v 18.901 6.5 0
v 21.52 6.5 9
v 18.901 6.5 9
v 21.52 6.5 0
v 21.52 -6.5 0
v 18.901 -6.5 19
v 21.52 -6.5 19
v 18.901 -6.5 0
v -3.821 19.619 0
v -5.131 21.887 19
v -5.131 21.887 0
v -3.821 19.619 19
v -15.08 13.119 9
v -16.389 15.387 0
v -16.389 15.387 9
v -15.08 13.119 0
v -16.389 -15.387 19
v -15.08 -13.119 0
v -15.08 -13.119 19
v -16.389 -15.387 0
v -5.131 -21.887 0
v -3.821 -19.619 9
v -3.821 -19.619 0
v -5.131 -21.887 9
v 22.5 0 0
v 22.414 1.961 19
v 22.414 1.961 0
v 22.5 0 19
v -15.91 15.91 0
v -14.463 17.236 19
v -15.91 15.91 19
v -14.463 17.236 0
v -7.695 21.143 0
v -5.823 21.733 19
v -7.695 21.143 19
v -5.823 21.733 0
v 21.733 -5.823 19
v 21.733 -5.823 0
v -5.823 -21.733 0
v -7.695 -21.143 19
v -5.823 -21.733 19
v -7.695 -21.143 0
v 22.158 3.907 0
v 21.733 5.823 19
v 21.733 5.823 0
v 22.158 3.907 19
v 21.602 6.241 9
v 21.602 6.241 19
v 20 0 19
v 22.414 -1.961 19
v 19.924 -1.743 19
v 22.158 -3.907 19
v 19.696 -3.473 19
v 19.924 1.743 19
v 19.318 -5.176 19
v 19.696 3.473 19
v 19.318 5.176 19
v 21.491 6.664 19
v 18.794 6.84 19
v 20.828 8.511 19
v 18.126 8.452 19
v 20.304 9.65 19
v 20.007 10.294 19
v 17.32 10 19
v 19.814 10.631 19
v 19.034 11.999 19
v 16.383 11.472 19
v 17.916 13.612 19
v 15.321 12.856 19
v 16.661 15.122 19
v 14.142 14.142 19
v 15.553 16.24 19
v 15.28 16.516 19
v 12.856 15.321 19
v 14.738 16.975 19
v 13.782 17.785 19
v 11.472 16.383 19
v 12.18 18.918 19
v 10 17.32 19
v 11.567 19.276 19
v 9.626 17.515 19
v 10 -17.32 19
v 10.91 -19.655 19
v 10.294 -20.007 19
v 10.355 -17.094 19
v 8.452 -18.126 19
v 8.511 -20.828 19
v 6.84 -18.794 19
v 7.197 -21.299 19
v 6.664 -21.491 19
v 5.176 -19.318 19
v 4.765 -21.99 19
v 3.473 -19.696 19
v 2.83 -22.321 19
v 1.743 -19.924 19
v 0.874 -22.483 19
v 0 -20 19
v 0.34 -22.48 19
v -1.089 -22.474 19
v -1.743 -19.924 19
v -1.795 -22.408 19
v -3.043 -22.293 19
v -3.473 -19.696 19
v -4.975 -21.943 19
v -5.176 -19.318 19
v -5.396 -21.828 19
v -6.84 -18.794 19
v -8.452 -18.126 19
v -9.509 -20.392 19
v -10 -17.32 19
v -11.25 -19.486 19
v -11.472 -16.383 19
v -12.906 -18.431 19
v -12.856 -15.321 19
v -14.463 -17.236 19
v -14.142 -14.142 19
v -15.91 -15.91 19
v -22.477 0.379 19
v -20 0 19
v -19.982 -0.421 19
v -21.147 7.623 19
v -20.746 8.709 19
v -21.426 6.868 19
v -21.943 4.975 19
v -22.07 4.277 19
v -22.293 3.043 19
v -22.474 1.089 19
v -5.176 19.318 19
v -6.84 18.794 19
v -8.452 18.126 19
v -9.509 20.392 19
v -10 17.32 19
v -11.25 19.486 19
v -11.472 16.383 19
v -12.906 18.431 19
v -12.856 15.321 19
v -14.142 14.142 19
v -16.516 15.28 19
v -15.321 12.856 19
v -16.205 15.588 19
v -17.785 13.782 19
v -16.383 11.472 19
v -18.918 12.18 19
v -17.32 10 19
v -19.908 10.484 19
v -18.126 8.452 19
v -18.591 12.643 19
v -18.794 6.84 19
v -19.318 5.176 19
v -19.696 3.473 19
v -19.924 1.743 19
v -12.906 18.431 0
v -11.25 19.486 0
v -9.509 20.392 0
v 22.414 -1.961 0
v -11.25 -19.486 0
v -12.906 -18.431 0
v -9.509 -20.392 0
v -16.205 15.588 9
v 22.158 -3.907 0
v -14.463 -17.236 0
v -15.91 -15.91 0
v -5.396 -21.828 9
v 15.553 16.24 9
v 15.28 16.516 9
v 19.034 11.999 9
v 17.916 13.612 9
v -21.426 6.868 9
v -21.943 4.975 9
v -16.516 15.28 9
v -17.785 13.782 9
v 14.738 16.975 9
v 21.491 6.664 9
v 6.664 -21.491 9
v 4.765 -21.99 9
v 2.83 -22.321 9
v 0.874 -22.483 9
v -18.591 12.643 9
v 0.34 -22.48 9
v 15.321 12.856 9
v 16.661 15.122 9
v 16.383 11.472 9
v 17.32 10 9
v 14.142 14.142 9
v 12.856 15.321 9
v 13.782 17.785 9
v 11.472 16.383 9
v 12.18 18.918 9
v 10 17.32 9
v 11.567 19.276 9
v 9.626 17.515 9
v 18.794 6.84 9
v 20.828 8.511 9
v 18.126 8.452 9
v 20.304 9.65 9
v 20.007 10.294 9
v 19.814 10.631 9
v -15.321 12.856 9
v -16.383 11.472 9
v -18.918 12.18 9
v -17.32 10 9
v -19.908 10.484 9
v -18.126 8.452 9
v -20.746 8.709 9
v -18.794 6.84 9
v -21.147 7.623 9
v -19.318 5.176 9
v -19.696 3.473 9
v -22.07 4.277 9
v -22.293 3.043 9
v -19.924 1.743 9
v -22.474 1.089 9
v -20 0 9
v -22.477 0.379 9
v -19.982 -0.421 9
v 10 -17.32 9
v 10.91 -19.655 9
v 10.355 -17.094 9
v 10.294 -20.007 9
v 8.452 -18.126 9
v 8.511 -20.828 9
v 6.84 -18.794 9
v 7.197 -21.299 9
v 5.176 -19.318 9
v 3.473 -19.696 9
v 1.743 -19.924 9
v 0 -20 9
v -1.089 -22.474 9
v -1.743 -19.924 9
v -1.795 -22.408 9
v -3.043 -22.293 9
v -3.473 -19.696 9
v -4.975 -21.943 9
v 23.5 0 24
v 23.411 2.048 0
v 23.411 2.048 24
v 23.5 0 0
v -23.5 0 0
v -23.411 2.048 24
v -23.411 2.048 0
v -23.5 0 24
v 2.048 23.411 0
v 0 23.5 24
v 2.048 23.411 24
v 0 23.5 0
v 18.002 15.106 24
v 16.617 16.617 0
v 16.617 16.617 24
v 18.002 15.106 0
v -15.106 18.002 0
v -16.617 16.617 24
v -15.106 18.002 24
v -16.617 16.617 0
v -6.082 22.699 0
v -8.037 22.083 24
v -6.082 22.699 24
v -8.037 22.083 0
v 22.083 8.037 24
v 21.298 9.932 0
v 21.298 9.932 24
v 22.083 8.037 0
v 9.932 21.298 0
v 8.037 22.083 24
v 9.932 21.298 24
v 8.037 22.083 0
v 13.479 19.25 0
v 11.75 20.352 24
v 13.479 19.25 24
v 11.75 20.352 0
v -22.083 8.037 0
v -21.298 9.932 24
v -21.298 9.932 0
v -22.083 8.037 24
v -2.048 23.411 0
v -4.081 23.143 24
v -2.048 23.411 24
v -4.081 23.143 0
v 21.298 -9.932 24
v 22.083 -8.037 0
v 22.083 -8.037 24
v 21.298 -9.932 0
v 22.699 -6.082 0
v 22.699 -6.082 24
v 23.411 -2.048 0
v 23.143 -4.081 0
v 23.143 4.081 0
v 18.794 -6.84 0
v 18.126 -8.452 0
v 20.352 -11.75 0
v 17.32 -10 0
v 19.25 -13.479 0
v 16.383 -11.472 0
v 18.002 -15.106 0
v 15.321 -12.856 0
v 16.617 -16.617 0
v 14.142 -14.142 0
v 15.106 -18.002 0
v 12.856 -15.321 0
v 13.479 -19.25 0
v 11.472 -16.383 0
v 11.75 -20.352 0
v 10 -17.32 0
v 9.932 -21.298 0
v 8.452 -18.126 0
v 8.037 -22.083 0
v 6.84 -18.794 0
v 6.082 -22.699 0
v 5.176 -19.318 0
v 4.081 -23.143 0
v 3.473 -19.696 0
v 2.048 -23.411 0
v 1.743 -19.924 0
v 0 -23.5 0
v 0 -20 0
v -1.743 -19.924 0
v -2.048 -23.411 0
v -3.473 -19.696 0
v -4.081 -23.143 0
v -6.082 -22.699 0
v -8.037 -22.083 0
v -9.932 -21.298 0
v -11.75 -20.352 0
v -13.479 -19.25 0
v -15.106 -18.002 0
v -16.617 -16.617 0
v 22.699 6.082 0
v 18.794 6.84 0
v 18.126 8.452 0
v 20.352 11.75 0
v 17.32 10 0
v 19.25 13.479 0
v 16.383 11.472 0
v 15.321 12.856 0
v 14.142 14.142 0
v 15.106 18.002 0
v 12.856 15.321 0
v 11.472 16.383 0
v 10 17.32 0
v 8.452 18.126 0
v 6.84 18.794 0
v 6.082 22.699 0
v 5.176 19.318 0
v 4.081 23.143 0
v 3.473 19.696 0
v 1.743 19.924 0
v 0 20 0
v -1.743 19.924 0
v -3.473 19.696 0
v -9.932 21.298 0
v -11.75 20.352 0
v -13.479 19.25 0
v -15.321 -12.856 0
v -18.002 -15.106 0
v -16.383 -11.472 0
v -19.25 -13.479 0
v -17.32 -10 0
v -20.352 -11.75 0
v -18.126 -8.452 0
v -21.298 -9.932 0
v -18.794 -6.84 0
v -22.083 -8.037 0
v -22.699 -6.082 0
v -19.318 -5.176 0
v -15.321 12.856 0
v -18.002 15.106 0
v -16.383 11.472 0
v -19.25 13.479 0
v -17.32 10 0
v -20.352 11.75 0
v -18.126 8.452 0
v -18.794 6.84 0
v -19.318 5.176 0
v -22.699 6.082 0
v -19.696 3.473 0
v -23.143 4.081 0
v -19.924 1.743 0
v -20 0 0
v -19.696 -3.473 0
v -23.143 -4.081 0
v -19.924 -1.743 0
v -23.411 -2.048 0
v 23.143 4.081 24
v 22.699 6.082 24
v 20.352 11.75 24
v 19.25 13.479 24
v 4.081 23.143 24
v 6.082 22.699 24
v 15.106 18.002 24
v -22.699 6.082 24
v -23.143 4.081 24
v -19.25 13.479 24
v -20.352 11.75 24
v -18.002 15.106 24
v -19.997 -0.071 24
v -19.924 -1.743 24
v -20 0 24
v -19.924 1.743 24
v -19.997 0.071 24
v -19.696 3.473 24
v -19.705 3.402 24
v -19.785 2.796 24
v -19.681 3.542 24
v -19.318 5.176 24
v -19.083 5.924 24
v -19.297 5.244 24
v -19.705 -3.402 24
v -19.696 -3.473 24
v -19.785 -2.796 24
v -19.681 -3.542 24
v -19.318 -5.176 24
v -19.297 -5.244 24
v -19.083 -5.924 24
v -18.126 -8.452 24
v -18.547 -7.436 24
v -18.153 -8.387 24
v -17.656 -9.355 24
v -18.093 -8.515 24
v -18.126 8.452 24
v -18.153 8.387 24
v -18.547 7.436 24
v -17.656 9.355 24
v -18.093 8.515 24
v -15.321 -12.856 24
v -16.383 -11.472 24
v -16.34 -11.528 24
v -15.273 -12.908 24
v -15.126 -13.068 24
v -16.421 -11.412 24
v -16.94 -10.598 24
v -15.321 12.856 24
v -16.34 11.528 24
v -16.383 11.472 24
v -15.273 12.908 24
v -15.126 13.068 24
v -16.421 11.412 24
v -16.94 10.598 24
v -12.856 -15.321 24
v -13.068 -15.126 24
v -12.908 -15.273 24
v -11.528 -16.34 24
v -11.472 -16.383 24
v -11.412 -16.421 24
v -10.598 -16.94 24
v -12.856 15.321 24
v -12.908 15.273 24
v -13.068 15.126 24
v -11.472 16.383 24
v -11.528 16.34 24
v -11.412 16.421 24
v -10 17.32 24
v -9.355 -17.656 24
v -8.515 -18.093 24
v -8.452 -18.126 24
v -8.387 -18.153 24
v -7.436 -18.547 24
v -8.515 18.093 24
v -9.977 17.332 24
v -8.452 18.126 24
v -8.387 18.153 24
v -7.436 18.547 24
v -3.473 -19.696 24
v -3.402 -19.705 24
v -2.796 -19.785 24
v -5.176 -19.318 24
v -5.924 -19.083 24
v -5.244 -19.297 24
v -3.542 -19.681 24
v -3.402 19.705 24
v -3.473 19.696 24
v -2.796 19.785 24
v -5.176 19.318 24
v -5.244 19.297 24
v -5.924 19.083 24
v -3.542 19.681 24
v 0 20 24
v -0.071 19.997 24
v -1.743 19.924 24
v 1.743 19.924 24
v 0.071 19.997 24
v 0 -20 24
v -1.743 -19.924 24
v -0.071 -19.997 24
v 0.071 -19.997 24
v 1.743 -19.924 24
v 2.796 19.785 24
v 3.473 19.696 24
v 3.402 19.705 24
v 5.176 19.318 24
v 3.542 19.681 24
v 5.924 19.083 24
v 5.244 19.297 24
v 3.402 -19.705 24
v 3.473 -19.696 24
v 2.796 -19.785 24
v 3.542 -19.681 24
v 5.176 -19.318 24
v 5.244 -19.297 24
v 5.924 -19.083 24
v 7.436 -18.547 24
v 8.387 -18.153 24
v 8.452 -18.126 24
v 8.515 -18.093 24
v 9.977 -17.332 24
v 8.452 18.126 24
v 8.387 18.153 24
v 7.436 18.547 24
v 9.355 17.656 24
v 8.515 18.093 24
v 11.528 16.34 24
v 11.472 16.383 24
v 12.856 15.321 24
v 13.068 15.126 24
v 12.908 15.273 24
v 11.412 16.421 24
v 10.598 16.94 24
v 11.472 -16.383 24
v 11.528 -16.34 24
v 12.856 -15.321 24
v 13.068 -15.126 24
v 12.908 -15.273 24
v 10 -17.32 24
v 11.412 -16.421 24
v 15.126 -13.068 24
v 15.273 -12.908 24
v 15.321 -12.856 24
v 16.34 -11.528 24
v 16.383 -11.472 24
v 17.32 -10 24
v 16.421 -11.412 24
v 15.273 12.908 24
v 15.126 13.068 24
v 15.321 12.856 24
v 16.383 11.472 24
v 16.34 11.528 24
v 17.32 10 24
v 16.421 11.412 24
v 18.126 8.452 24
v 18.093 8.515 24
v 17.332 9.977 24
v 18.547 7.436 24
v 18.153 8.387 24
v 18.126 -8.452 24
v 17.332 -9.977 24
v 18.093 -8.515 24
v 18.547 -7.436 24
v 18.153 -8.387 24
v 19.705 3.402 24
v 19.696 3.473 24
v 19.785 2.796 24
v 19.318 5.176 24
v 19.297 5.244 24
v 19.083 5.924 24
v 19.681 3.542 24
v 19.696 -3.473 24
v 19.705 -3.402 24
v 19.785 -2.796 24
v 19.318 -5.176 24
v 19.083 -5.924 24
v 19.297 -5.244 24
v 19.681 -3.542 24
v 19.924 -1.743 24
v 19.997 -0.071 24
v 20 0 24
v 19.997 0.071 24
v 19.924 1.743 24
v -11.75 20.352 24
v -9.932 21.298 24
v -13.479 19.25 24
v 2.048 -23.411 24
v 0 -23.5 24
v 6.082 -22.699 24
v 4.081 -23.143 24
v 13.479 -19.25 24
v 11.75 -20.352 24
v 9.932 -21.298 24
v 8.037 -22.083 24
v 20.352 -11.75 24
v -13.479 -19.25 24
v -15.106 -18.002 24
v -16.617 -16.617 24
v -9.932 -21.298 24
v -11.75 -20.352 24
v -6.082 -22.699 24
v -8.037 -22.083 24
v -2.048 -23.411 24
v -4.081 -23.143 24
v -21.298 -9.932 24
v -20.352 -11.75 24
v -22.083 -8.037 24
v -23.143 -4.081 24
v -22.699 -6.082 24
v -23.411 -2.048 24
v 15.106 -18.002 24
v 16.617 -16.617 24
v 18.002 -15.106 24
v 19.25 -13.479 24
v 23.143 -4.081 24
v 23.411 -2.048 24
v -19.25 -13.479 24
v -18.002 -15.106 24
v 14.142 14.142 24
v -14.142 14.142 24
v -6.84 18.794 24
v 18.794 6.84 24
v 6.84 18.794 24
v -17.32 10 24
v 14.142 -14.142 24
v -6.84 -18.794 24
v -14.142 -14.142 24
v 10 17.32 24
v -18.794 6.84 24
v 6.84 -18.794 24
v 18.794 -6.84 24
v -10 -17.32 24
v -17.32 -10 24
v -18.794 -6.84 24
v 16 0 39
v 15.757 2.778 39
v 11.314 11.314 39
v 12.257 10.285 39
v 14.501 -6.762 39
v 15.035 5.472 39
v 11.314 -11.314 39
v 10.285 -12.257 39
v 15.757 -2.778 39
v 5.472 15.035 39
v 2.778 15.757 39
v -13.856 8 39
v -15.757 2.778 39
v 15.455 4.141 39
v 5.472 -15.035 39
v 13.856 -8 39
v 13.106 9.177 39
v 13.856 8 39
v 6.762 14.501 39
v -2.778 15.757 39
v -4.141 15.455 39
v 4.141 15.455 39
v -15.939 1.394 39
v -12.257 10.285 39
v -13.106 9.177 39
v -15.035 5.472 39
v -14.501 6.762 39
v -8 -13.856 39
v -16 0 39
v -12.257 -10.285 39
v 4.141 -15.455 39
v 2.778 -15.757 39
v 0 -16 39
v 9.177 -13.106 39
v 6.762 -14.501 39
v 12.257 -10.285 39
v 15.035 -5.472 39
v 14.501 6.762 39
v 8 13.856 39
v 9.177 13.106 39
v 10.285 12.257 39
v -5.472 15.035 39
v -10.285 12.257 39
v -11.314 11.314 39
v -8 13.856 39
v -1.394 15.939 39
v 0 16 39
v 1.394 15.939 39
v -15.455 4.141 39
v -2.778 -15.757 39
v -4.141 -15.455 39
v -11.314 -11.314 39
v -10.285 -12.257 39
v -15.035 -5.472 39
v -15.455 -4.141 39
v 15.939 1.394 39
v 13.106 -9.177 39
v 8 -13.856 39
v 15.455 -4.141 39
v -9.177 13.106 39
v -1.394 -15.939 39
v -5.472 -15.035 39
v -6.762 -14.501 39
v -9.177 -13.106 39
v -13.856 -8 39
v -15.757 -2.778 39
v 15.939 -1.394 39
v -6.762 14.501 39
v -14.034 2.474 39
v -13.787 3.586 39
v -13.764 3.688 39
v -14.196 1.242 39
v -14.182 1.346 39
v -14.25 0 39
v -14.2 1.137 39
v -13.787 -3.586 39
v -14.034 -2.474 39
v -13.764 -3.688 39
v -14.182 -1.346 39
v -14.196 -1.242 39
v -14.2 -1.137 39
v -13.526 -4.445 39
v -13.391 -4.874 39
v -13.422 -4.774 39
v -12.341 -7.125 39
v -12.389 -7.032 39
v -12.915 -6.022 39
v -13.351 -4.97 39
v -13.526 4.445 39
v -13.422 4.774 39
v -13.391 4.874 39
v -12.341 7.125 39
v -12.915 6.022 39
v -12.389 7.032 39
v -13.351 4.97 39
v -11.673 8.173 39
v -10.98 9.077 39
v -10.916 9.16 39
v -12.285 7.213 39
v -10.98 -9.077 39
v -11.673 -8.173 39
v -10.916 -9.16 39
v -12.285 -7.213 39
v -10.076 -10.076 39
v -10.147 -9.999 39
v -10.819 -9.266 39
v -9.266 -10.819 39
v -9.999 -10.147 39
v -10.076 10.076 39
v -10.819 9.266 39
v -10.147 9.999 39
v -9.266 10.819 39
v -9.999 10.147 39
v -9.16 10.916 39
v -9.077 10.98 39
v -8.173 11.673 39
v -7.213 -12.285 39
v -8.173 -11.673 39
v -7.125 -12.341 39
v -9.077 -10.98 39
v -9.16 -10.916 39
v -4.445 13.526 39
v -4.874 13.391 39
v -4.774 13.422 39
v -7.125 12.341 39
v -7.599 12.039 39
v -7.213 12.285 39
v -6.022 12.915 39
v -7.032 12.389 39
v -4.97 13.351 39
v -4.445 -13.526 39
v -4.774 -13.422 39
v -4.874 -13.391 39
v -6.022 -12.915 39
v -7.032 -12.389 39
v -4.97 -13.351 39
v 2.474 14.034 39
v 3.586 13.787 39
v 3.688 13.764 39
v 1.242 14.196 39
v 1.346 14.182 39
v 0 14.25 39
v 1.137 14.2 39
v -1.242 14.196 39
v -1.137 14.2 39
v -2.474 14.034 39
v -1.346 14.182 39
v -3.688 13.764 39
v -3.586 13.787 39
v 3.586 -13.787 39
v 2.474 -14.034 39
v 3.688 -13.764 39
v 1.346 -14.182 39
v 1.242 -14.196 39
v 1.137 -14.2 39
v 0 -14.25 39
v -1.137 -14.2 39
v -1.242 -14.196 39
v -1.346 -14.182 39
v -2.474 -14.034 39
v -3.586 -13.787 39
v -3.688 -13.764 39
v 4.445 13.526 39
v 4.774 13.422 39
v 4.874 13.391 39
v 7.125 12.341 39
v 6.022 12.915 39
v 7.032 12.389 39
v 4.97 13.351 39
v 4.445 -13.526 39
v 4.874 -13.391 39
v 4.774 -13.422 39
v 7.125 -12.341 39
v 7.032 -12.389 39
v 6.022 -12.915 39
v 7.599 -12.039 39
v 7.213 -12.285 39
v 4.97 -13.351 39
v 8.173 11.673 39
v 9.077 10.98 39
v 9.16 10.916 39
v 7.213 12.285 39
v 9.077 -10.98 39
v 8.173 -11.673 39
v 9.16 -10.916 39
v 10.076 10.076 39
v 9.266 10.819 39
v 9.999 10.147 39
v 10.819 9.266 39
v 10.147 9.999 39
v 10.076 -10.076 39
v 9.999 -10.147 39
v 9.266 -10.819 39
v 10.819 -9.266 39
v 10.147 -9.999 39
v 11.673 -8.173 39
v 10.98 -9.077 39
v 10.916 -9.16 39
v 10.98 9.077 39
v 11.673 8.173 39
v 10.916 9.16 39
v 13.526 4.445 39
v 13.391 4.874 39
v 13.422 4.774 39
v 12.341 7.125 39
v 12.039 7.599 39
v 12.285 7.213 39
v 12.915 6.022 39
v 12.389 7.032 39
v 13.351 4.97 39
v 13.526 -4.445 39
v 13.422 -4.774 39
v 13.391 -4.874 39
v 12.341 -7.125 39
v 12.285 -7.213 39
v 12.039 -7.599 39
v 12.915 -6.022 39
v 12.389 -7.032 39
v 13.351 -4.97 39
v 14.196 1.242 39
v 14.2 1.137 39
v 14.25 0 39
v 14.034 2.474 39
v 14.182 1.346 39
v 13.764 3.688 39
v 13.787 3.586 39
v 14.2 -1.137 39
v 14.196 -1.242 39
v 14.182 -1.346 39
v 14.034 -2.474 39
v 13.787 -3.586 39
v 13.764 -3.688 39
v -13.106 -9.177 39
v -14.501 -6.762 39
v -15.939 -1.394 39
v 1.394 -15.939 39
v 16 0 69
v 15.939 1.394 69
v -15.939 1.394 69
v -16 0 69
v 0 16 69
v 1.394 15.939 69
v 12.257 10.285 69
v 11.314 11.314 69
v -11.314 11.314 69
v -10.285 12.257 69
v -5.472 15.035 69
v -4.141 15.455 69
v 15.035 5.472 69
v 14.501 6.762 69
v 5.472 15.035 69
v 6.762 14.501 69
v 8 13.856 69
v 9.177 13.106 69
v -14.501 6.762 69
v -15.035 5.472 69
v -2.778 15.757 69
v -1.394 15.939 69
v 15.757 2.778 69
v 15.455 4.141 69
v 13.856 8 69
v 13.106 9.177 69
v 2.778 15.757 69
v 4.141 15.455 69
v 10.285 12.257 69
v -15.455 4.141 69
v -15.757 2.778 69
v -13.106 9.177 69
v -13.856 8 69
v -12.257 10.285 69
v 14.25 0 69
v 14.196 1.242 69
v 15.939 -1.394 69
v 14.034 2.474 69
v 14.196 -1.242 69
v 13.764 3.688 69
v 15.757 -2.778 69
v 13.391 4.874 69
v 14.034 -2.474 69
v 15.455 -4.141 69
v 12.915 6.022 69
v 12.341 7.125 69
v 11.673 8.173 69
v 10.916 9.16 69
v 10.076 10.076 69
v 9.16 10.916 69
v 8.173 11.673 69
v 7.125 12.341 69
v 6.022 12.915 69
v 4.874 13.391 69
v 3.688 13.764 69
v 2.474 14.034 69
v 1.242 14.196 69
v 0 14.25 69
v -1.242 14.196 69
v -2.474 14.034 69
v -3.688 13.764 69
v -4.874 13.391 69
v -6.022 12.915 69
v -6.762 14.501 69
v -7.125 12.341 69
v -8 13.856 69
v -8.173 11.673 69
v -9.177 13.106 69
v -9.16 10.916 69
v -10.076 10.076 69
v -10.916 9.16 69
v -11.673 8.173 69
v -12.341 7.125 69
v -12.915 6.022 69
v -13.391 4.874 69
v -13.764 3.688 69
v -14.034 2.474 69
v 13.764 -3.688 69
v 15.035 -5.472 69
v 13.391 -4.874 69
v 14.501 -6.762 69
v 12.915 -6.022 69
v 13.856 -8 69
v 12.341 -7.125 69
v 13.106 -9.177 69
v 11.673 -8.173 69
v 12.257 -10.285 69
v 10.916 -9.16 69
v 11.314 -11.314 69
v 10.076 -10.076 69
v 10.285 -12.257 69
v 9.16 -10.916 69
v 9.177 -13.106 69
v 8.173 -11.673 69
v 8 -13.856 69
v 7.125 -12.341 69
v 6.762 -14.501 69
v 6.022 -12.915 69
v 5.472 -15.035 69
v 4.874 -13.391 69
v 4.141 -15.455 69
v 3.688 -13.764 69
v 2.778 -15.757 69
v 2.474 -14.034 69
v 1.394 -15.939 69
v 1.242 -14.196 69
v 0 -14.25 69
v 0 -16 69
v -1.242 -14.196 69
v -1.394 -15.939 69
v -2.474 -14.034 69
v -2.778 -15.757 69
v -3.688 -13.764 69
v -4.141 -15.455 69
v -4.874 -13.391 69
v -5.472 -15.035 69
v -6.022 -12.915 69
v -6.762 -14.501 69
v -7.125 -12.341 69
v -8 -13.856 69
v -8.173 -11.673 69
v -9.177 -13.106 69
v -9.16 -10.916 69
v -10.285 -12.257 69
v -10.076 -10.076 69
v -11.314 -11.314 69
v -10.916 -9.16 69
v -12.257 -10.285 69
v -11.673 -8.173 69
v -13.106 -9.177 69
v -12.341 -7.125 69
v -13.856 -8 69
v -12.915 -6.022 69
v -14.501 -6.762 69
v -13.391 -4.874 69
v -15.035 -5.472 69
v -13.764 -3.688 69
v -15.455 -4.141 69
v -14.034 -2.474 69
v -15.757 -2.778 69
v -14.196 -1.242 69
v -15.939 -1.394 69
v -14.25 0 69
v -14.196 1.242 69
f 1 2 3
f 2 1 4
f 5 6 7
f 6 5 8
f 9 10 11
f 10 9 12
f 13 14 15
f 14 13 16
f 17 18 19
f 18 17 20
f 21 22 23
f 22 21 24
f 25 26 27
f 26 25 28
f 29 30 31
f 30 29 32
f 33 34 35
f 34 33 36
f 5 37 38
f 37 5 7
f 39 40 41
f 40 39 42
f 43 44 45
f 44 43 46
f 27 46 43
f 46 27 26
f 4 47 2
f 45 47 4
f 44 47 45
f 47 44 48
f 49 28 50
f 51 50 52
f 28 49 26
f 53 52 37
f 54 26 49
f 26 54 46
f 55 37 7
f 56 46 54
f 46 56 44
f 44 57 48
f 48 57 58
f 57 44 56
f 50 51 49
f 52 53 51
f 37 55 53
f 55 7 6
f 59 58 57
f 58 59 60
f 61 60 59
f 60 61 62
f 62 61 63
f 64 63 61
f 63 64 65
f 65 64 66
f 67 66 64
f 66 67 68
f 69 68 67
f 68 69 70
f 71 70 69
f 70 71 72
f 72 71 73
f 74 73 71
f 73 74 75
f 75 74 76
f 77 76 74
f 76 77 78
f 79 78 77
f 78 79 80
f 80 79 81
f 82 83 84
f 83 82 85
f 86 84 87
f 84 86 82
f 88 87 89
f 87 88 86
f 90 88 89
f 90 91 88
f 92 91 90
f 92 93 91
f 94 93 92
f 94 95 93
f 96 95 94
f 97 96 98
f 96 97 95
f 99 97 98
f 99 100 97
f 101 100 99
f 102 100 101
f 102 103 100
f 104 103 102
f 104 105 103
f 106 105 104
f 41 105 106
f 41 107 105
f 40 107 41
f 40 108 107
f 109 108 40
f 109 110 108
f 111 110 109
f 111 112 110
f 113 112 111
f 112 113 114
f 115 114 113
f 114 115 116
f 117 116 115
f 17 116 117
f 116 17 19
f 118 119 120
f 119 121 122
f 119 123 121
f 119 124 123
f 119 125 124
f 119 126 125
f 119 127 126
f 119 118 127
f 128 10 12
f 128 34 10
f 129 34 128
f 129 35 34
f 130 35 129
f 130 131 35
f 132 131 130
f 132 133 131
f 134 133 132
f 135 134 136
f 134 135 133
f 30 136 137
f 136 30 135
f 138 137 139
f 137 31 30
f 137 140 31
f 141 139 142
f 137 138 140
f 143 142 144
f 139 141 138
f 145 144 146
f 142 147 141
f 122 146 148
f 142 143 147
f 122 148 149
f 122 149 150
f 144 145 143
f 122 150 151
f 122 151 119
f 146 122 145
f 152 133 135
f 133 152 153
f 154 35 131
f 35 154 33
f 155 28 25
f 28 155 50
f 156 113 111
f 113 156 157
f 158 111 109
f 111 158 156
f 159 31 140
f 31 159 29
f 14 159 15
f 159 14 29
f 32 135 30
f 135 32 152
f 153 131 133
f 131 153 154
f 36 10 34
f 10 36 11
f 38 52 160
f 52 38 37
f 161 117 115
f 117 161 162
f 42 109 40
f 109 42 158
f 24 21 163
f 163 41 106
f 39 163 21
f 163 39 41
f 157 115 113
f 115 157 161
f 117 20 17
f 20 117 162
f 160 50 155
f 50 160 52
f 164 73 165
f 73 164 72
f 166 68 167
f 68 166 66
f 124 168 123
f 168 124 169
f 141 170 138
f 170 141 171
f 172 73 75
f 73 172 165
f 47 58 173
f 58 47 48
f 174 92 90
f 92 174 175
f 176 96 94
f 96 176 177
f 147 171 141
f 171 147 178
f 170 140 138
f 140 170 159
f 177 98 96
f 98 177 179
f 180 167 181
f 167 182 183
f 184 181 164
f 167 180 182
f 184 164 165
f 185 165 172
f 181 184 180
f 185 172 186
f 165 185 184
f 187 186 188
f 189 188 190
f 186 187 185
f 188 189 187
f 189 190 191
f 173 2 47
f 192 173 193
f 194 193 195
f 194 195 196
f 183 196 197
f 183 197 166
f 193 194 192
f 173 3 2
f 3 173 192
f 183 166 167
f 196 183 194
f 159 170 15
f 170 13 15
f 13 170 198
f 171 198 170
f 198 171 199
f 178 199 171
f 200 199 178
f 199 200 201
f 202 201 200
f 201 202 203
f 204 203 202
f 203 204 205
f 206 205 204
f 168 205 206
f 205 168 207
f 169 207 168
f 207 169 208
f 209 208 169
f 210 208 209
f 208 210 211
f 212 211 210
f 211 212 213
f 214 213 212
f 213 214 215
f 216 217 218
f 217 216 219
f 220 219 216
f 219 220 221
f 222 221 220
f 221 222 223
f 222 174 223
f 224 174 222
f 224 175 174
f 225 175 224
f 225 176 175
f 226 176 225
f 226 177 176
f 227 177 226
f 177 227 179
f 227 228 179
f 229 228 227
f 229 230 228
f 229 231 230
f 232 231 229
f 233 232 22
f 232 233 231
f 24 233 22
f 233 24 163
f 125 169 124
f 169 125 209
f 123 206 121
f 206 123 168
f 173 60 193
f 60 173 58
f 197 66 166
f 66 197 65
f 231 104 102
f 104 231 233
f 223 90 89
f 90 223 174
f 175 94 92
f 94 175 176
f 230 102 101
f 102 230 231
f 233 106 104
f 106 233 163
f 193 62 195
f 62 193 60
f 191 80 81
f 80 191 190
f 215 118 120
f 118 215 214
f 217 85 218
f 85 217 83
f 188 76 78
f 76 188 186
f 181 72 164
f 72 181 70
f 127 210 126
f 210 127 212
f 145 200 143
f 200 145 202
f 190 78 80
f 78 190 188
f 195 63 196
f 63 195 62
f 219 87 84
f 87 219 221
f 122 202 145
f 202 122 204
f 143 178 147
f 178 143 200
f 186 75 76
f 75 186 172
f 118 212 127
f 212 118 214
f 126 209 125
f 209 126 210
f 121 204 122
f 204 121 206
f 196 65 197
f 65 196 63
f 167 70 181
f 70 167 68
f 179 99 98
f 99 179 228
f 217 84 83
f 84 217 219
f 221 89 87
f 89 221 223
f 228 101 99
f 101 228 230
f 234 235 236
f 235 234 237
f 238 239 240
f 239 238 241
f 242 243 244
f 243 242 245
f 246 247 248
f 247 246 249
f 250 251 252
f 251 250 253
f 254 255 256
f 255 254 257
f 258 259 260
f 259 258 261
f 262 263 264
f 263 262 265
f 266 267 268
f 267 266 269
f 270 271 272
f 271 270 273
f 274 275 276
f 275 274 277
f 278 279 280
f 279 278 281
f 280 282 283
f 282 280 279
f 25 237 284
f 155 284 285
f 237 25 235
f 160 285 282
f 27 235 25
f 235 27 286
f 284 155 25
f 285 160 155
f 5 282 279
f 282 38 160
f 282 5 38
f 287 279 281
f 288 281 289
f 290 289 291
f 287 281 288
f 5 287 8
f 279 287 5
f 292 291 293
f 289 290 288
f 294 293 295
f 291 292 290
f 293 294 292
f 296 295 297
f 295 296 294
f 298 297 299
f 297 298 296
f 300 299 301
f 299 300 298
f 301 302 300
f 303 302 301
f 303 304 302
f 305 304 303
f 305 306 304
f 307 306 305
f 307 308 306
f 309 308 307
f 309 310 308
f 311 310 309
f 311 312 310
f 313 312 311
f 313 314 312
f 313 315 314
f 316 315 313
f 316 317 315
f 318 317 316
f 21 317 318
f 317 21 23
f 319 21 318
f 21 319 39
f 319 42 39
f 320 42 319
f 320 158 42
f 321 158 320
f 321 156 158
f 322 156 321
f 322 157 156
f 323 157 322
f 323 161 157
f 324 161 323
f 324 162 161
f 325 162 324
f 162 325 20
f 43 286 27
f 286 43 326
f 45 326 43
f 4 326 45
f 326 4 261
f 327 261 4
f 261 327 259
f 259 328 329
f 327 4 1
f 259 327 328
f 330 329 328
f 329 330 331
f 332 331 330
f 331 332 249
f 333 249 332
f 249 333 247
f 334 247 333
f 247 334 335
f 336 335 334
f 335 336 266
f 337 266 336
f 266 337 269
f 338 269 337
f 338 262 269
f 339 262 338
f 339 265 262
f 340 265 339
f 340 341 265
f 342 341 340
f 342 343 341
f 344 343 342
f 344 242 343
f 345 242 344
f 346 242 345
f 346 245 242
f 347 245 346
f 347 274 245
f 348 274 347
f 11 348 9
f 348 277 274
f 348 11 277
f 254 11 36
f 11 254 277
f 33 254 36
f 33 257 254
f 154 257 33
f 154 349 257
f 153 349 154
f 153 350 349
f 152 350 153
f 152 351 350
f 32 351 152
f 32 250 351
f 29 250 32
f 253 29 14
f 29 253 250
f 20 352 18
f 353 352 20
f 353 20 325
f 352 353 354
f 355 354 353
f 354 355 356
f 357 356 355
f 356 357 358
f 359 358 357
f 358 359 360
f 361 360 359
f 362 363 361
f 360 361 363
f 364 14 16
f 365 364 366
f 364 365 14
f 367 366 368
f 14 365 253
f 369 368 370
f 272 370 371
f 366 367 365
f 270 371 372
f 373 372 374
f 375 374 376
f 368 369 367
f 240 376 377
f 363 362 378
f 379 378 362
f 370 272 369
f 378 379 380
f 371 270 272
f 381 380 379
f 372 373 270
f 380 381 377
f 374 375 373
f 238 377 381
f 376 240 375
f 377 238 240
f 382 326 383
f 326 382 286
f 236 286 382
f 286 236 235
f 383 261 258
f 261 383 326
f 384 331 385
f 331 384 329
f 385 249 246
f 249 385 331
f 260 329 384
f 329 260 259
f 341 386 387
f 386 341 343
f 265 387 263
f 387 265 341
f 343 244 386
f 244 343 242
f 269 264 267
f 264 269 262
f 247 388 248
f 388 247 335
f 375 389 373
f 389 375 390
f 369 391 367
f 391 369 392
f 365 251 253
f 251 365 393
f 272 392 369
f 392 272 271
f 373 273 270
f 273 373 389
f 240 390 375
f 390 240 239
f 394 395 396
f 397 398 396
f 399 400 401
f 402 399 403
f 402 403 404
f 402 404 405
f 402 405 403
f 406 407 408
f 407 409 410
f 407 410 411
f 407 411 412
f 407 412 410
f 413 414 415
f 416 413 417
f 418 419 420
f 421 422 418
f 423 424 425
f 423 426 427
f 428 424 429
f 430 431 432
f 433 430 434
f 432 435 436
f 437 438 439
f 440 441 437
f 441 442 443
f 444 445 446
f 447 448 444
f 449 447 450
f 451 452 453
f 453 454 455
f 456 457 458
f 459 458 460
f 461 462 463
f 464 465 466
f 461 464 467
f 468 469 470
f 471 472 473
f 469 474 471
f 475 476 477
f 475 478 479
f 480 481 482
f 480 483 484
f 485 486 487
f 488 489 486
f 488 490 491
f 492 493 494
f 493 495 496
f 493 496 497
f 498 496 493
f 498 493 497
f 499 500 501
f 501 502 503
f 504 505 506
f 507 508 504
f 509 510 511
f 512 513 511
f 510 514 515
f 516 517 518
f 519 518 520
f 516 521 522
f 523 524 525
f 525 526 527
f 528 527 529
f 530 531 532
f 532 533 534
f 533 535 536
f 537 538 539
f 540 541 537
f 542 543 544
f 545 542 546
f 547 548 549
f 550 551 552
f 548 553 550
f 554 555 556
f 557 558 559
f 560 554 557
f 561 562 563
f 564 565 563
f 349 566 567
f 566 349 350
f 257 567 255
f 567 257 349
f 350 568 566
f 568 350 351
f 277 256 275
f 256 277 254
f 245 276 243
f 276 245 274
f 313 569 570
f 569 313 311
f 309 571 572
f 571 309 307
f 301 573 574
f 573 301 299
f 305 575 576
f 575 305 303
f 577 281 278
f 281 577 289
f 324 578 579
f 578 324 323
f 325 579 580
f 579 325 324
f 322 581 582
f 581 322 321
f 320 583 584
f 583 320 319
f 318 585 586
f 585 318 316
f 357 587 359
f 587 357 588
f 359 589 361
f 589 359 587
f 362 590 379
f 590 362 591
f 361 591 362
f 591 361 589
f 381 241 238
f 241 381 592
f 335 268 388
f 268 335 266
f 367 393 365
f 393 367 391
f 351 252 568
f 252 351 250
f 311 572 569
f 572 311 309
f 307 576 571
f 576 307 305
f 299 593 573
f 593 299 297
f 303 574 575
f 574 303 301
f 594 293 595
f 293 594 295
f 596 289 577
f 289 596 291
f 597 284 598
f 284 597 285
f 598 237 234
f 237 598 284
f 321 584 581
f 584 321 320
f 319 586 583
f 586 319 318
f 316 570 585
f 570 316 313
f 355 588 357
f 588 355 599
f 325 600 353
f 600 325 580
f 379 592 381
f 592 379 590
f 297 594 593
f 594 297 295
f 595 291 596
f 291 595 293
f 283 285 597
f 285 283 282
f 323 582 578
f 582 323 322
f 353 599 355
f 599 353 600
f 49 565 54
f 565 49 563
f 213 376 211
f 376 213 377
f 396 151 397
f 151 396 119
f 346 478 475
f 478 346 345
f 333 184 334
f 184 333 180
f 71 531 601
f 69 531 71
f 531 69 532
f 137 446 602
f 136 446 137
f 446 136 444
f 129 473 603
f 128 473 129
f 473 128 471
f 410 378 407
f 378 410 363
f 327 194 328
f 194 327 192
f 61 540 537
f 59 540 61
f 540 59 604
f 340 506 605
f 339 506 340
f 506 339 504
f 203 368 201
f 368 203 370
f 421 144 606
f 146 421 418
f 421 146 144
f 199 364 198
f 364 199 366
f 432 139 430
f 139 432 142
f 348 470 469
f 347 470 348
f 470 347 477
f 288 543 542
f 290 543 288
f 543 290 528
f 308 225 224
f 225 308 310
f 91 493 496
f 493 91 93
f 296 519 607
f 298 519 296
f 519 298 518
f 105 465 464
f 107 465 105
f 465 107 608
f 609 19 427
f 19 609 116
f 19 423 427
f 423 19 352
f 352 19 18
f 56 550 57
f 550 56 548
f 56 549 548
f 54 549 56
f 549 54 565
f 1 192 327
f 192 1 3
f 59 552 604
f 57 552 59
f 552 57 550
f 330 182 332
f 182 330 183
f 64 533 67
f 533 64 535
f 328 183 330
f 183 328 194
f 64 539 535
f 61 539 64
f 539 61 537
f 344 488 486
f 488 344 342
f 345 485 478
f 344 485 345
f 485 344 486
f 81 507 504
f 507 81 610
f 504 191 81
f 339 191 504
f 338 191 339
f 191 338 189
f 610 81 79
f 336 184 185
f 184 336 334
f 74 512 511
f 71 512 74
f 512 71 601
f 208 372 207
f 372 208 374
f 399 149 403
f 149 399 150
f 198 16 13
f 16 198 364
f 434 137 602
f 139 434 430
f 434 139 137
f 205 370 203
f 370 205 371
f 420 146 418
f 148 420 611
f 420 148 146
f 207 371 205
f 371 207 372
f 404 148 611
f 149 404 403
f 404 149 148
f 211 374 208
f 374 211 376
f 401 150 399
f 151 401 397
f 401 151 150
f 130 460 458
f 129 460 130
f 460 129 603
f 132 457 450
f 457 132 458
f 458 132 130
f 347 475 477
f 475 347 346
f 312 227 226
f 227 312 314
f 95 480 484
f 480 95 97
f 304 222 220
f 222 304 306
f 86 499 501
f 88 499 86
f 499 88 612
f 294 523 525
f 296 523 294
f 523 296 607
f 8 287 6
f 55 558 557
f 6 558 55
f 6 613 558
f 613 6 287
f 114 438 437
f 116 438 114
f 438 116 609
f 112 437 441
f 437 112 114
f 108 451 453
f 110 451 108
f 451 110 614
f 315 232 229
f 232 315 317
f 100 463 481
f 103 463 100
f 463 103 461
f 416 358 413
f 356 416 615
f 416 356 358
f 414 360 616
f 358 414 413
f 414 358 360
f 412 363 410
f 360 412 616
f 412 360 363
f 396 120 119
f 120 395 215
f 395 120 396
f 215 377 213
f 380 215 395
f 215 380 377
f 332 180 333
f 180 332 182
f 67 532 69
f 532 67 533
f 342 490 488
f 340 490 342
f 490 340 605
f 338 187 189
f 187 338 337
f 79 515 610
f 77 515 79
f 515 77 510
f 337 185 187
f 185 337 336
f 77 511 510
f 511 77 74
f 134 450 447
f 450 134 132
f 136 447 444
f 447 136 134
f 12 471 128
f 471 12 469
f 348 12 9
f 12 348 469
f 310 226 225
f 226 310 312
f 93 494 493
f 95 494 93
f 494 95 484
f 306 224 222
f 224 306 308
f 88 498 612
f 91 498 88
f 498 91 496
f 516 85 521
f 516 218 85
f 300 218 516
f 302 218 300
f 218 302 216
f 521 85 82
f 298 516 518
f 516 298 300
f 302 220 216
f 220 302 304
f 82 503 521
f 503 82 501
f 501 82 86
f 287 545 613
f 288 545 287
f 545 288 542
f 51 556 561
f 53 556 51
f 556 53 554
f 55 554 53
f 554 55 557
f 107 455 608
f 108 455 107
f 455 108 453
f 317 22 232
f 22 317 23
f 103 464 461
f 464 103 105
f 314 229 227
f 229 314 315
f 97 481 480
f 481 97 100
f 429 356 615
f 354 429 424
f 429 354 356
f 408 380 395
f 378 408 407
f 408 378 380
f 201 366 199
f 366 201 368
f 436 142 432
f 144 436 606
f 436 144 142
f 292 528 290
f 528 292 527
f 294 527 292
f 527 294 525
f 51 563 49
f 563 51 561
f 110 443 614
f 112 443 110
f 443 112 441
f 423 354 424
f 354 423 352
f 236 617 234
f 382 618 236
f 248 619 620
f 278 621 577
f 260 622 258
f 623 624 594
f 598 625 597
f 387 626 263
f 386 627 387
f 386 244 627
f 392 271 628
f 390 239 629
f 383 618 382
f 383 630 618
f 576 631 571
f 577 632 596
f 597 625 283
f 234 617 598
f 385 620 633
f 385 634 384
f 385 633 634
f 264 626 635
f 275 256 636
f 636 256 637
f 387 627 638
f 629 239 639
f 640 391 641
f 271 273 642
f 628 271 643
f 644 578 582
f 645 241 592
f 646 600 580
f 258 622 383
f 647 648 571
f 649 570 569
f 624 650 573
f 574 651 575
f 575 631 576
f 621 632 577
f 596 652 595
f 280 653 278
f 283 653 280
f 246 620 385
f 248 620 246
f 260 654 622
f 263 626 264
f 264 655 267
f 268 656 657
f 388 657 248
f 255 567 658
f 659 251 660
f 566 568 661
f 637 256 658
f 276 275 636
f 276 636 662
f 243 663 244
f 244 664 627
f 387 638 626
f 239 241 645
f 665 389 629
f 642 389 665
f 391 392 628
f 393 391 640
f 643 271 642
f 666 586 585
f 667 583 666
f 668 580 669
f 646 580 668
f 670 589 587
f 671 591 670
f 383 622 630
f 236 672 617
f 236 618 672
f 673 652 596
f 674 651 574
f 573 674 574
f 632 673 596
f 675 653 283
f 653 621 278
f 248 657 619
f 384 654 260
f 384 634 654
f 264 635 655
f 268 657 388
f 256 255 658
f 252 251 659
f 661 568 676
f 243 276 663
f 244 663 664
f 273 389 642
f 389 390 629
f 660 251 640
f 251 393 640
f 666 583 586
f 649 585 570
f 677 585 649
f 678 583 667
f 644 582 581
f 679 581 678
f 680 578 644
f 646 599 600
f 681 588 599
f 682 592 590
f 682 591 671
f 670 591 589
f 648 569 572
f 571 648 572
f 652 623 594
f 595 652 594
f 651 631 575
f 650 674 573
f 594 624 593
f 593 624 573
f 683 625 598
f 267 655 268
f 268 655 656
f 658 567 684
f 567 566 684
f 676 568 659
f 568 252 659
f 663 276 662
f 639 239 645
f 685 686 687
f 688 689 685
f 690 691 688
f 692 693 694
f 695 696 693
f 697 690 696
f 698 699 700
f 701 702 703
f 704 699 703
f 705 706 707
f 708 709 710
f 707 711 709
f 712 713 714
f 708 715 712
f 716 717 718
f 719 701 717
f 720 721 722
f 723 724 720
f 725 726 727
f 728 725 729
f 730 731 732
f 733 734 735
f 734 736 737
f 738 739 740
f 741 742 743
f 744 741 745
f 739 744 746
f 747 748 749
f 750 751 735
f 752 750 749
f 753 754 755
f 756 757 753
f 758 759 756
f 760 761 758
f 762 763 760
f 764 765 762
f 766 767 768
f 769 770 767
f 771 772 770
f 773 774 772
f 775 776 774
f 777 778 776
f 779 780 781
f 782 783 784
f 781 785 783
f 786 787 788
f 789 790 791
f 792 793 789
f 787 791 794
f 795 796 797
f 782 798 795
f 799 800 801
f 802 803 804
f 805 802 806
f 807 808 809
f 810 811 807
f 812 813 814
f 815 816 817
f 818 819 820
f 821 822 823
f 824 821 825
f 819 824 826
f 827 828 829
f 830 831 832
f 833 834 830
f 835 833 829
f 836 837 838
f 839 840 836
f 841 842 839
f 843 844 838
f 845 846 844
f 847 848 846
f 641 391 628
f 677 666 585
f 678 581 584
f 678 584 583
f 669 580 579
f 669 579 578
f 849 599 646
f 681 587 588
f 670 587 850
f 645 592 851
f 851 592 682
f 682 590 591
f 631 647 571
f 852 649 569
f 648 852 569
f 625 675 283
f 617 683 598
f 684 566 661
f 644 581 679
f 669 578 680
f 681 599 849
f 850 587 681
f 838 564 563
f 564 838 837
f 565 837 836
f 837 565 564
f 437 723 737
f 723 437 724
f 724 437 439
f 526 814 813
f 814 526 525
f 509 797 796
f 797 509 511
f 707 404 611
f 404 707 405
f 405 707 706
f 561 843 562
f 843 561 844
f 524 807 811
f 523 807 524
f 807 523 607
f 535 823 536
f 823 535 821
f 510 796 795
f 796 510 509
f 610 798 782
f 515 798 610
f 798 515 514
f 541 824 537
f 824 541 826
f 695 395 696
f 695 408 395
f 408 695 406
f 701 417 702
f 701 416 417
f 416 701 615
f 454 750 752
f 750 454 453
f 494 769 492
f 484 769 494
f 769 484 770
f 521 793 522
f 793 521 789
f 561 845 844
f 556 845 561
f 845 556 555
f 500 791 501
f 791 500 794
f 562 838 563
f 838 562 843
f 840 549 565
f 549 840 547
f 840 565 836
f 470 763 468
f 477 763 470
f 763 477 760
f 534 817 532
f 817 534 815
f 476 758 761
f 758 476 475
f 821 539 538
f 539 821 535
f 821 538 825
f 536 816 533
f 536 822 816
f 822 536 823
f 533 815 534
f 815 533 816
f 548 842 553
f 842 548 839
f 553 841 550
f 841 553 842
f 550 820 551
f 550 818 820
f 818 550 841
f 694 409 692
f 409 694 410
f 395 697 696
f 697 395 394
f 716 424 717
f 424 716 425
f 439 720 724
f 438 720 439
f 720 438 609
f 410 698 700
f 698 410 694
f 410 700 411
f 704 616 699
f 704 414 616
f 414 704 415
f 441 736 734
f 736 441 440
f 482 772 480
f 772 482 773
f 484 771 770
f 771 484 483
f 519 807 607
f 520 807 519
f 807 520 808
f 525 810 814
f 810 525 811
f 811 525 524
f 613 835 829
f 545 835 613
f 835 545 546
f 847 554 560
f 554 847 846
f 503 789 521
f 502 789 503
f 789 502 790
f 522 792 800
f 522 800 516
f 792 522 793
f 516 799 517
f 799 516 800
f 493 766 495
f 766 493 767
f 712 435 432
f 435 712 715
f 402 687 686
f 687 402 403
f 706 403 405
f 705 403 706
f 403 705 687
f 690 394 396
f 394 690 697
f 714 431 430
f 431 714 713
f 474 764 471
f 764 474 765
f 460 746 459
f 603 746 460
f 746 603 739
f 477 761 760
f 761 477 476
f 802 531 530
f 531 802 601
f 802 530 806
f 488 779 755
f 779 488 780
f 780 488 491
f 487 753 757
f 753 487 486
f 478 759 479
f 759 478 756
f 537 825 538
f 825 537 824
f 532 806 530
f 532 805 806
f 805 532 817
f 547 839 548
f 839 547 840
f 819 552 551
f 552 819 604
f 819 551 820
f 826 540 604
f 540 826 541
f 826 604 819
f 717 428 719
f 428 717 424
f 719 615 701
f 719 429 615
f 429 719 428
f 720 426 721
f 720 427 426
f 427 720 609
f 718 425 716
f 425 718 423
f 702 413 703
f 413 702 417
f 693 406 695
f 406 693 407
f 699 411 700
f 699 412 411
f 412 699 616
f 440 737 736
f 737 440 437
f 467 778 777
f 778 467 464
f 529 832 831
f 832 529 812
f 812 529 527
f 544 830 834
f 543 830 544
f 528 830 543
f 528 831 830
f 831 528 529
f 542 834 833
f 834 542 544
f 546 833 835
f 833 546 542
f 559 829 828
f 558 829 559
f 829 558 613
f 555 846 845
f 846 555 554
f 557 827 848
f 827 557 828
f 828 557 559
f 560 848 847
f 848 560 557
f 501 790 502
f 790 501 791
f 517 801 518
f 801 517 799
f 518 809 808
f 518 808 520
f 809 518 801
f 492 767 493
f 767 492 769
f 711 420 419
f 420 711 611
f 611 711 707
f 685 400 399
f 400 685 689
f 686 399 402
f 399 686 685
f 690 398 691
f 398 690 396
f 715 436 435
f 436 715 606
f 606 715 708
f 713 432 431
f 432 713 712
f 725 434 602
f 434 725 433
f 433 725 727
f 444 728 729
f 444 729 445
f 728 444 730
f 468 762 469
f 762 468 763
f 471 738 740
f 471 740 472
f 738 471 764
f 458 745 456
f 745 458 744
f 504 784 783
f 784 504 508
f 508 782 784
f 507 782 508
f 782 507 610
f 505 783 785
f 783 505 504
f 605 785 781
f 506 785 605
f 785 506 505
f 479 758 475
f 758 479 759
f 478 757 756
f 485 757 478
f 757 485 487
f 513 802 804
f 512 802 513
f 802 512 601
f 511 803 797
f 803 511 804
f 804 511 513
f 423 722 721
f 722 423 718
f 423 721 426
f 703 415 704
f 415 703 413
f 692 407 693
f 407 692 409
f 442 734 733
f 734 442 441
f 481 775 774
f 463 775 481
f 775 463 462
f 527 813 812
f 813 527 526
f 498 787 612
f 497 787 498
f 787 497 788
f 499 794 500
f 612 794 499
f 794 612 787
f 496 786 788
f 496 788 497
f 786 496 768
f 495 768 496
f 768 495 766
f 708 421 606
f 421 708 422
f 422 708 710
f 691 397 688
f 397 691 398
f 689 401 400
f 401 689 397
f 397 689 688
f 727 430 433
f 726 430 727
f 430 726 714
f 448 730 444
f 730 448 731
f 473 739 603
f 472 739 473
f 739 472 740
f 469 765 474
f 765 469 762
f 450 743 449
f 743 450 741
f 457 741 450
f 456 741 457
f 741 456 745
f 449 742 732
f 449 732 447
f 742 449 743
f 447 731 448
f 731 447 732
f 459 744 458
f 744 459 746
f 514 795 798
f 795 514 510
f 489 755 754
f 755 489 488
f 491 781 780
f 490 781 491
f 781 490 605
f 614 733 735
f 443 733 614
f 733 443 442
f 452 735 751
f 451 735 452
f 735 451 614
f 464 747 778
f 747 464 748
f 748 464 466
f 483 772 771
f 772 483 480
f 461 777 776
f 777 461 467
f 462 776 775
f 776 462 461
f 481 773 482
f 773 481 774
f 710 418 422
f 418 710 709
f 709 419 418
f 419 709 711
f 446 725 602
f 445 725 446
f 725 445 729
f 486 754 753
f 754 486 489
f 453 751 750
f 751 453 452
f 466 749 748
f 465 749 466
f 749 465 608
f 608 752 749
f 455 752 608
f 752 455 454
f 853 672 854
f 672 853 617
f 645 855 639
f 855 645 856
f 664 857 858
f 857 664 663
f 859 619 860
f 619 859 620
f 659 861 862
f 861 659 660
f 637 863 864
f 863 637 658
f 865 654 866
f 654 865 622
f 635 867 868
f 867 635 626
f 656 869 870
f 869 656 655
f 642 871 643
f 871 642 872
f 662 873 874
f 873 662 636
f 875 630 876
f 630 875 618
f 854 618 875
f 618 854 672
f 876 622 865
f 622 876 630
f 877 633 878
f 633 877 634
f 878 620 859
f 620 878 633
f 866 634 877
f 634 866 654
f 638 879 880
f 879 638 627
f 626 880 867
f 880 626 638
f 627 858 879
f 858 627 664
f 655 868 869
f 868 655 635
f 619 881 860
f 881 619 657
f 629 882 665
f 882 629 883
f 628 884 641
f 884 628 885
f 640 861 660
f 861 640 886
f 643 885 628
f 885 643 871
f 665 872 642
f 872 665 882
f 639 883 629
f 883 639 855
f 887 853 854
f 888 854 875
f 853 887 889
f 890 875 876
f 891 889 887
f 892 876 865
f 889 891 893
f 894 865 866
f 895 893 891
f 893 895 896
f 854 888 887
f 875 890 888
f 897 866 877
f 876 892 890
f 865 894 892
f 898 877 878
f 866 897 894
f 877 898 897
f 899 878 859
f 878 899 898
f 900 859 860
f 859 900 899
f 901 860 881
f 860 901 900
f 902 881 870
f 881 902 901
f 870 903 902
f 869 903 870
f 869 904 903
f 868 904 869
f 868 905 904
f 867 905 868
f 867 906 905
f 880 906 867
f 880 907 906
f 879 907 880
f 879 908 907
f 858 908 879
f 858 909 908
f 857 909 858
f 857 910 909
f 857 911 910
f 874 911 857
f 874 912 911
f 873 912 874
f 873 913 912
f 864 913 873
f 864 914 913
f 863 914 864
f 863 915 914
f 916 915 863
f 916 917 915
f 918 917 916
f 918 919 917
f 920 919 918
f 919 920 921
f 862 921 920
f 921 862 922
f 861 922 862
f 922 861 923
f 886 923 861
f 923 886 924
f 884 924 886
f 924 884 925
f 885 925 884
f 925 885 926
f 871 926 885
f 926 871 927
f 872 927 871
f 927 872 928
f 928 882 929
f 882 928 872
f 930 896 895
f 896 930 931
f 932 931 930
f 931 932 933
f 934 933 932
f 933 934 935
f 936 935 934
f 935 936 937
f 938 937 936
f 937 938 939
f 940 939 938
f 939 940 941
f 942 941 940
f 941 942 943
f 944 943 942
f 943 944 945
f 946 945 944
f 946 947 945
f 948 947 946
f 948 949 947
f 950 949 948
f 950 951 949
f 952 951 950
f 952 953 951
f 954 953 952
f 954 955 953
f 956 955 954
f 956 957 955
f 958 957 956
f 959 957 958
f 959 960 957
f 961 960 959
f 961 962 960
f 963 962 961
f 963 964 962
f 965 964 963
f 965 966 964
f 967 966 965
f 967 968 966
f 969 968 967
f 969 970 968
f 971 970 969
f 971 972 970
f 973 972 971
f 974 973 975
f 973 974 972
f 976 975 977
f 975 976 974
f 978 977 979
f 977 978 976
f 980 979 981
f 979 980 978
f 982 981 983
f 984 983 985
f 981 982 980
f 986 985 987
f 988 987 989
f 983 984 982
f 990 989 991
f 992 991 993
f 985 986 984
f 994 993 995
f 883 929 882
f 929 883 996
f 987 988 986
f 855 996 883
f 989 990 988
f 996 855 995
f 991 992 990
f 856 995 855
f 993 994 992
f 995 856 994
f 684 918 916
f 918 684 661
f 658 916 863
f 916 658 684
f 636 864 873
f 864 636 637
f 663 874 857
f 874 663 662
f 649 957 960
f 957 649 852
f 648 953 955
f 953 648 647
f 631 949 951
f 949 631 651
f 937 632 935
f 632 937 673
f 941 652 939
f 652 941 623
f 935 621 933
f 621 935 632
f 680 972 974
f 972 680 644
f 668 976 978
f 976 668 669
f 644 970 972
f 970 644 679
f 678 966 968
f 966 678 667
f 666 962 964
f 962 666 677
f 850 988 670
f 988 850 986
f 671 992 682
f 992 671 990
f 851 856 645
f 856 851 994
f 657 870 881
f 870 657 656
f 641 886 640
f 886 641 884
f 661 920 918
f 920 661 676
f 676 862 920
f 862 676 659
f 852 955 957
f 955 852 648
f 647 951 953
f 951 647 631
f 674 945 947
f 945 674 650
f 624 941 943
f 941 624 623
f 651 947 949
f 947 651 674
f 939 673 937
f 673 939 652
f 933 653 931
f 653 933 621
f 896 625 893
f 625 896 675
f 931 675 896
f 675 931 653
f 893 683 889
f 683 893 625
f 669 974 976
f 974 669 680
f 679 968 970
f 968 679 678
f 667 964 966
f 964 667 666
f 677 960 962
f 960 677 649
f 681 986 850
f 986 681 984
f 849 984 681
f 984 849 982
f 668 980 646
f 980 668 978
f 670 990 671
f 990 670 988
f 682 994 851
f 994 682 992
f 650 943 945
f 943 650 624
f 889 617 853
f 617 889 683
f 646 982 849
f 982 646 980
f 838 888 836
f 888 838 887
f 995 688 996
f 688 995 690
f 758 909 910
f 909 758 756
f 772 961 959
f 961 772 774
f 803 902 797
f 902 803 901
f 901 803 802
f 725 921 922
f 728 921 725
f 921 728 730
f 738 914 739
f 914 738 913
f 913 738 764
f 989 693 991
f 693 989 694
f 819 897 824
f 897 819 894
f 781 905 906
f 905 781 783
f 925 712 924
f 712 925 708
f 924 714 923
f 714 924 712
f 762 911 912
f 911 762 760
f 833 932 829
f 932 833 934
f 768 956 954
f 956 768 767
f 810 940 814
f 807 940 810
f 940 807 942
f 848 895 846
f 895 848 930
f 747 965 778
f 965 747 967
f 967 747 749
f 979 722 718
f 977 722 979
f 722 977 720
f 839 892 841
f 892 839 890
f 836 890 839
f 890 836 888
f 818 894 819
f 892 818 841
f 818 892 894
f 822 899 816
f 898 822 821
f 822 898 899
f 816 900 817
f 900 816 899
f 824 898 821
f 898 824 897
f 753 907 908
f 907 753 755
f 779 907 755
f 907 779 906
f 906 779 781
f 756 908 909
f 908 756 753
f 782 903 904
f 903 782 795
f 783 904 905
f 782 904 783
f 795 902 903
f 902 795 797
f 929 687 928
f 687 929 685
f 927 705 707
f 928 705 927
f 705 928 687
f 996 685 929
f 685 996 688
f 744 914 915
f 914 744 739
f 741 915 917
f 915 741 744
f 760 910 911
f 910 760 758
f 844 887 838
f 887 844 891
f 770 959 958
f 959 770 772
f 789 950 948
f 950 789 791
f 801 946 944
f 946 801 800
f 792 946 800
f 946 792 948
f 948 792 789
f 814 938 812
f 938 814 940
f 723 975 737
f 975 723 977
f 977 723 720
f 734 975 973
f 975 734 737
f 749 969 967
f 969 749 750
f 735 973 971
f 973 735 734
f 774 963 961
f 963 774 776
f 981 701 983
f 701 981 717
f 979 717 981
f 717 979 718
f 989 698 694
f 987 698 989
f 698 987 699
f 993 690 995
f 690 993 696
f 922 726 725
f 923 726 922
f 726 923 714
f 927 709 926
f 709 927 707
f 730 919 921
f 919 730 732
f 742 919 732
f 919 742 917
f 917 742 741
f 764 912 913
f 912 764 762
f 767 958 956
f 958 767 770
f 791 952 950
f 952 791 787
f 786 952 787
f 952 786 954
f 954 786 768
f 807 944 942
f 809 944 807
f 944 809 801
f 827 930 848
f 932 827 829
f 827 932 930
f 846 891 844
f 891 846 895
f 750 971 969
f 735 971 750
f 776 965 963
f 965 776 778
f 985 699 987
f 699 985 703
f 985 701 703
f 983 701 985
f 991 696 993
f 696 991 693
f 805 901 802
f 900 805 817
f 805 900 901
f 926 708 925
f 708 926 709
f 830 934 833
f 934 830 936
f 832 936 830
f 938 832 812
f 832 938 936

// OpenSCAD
// file: ../utils/common_carvings.scad
/*
 * Geometric primitives I had to carve several times, e.g. a carved truncated cone, a carved cylinder (i.e. a pipe).
 *
 */
 
 // Examples
$fn = 72;
pipe(10, 9, 20, false);

translate([12, 0, 0])
rejuvenating_pipe(10, 7, 9, 6, 12, false);
 
module pipe(d_out, d_in, h, center=true)
{
    difference()
    {
        cylinder(d=d_out, h=h, center=center);
        translate([0, 0, center ? 0 : -1])
        cylinder(d=d_in, h=h+2, center=center);
    }
}


// A rejuvenating pipe is a carved truncated cone (German: ausgehoehlter Kegelstumpf)
module rejuvenating_pipe(d1_out, d2_out, d1_in, d2_in, h, center=true)
{
    // The cut out must be larger to avoid corrupt meshes, so similar triangles to the rescue!
    r1_old = d1_in/2;
    r2_old = d2_in/2;
    rem = (h + 1) * (r1_old - r2_old) / h;
    r2_new = r1_old - rem;
    r1_new = rem + r2_old;
 
    difference()
    {
        cylinder(d1=d1_out, d2=d2_out, h=h, center=center);
 
        translate([0, 0, center ? 0 : -1])
        cylinder(r1=r1_new, r2=r2_new, h=h+2, center=center);
    }
}
// main file
use <../utils/common_carvings.scad>

h_ts = 24;
h_ts1 = 5;
h_ts2 = 10;

d_ts = 40;
thickness_lock = 2;


w_lock = 13;
//h_lock = h_ts2;

h_transition = 15; // going from d_ts to d_suction

h_suction = 30;
d_suction = 32;


$fn = 72;

ts_suction_adapter(h_ts, h_ts1, h_ts2, d_ts, thickness_lock, w_lock, h_transition, h_suction, d_suction);

// D(iameter cylinder)
// H(eight cylinder)
// W(idth cube)
// num_cubes
module intersection_cylinder_cubes(D, H, W, num_cubes)
{
    angle = 360 / num_cubes;
    translate([0, 0, H/2])
    intersection()
    {
        cylinder(d = D, h = H, center = true);   
        for (i = [0 : 1 : num_cubes-1])
        {
            rotate([0, 0, i*angle])
            translate([D/2, 0, 0])
            cube([D, W, H+2], center = true);
        }
    }
}

module lock_negative(d_ts_lock, h_ts, h_ts1, h_ts2, thickness_lock, w_lock)
{
    translate([0, 0, -1]) // we make the "lock dive" a little longer to cut it out without defect meshes
    intersection_cylinder_cubes(d_ts_lock, h_ts - h_ts1 + 1, w_lock, 3);
    angle = 2*atan(w_lock / d_ts_lock);
    
    translate([0, 0, h_ts - h_ts1 - h_ts2])
    union()
    {
        rotate([0, 0, angle])
        intersection_cylinder_cubes(d_ts_lock, h_ts2, w_lock, 3);
        // The next one is extra, because we like to err on the safe side
        rotate([0, 0, angle+10])
        intersection_cylinder_cubes(d_ts_lock, h_ts2, w_lock, 3);
    }
}

module ts_suction_adapter(h_ts, h_ts1, h_ts2, d_ts, thickness_lock, w_lock, h_transition, h_suction, d_suction)
{
    // Relative values
    d_ts_lock = d_ts + 2*thickness_lock + 1;
    d_ts_outer = d_ts_lock + 2;
    d_suction_inner = d_suction - thickness_lock - 1.5;
    
    // TS55
    union()
    {
        difference()
        {
            cylinder(d = d_ts_outer, h = h_ts, center=false);
            
            // Lock cut out
            lock_negative(d_ts_lock, h_ts, h_ts1, h_ts2, thickness_lock, w_lock);
            translate([0, 0, -1])
            cylinder(d = d_ts, h = h_ts + 2, center = false);
        }
        
        // TODO proper rotation!
    /*    translate([d_ts_outer/2-1, 0, 0])
        rotate([90, 0, 30])
        linear_extrude(1.5)
        text("L", scale=1.5, halign="center");
      */  
       
        
        // Transition / Rejuvenation
        translate([0, 0, h_ts])
        rejuvenating_pipe(d_ts_outer, d_suction, d_ts, d_suction_inner, h_transition, center=false);
        
        // Suction adapter
        translate([0, 0, h_ts + h_transition])
        pipe(d_suction, d_suction_inner, h_suction, center=false);
    }
    /*difference()
    {
        translate([0, 0, h_ts])
        cylinder(d1 = d_ts_outer, d2 = d_suction, h = h_transition, center = false);
        
        union()
        {
            cylinder(d = d_ts, h = h_ts, center = false); // used to cut the TS55 inner parts
            translate([0, 0, h_ts])
            cylinder(d1 = d_ts, d2 = d_suction_inner, h = h_transition, center=false); 
            cylinder(d = d_suction_inner, h = h_ts + h_transition + 2); // used to cut the suction inner parts 
        }
    }*/
}
/*module ts_suction_adapter(diameter_ts, diameter_suction, height_ts, height_suction, lock_thickness, lock_width, lock_height, lock_dive, epsilon=0.5)
{
    //d_min = min(diameter_ts, diameter_suction);
    //h_total = height_ts + height_suction;
    d_ts_out = diameter_ts + lock_thickness + 1 + epsilon;
    
    // TS55
    //mirror([0, 0, 1])
    difference()
    {
        //translate([0, 0, height_ts/2])
        //cylinder(d = d_ts_out, h = height_ts, center = true);
        
        //translate([0, 0, height_ts - lock_dive - lock_height - epsilon])
        lock_negative(diameter_ts + epsilon, lock_width + epsilon, lock_height + epsilon, lock_thickness + epsilon, lock_dive+1);
        
        //translate([0, 0, height_ts/2])
        //cylinder(d = diameter_ts + epsilon, h = height_ts + 2, center = true);
    }
  */  
    // suction
    /*translate([0, 0, height_suction/2 + height_ts])
    difference()
    {
        cylinder(d = diameter_suction - epsilon/2, h = height_suction, center = true);
        cylinder(d = diameter_suction - 3, h = height_suction+2, center = true);
    }*/
    
    
//}
